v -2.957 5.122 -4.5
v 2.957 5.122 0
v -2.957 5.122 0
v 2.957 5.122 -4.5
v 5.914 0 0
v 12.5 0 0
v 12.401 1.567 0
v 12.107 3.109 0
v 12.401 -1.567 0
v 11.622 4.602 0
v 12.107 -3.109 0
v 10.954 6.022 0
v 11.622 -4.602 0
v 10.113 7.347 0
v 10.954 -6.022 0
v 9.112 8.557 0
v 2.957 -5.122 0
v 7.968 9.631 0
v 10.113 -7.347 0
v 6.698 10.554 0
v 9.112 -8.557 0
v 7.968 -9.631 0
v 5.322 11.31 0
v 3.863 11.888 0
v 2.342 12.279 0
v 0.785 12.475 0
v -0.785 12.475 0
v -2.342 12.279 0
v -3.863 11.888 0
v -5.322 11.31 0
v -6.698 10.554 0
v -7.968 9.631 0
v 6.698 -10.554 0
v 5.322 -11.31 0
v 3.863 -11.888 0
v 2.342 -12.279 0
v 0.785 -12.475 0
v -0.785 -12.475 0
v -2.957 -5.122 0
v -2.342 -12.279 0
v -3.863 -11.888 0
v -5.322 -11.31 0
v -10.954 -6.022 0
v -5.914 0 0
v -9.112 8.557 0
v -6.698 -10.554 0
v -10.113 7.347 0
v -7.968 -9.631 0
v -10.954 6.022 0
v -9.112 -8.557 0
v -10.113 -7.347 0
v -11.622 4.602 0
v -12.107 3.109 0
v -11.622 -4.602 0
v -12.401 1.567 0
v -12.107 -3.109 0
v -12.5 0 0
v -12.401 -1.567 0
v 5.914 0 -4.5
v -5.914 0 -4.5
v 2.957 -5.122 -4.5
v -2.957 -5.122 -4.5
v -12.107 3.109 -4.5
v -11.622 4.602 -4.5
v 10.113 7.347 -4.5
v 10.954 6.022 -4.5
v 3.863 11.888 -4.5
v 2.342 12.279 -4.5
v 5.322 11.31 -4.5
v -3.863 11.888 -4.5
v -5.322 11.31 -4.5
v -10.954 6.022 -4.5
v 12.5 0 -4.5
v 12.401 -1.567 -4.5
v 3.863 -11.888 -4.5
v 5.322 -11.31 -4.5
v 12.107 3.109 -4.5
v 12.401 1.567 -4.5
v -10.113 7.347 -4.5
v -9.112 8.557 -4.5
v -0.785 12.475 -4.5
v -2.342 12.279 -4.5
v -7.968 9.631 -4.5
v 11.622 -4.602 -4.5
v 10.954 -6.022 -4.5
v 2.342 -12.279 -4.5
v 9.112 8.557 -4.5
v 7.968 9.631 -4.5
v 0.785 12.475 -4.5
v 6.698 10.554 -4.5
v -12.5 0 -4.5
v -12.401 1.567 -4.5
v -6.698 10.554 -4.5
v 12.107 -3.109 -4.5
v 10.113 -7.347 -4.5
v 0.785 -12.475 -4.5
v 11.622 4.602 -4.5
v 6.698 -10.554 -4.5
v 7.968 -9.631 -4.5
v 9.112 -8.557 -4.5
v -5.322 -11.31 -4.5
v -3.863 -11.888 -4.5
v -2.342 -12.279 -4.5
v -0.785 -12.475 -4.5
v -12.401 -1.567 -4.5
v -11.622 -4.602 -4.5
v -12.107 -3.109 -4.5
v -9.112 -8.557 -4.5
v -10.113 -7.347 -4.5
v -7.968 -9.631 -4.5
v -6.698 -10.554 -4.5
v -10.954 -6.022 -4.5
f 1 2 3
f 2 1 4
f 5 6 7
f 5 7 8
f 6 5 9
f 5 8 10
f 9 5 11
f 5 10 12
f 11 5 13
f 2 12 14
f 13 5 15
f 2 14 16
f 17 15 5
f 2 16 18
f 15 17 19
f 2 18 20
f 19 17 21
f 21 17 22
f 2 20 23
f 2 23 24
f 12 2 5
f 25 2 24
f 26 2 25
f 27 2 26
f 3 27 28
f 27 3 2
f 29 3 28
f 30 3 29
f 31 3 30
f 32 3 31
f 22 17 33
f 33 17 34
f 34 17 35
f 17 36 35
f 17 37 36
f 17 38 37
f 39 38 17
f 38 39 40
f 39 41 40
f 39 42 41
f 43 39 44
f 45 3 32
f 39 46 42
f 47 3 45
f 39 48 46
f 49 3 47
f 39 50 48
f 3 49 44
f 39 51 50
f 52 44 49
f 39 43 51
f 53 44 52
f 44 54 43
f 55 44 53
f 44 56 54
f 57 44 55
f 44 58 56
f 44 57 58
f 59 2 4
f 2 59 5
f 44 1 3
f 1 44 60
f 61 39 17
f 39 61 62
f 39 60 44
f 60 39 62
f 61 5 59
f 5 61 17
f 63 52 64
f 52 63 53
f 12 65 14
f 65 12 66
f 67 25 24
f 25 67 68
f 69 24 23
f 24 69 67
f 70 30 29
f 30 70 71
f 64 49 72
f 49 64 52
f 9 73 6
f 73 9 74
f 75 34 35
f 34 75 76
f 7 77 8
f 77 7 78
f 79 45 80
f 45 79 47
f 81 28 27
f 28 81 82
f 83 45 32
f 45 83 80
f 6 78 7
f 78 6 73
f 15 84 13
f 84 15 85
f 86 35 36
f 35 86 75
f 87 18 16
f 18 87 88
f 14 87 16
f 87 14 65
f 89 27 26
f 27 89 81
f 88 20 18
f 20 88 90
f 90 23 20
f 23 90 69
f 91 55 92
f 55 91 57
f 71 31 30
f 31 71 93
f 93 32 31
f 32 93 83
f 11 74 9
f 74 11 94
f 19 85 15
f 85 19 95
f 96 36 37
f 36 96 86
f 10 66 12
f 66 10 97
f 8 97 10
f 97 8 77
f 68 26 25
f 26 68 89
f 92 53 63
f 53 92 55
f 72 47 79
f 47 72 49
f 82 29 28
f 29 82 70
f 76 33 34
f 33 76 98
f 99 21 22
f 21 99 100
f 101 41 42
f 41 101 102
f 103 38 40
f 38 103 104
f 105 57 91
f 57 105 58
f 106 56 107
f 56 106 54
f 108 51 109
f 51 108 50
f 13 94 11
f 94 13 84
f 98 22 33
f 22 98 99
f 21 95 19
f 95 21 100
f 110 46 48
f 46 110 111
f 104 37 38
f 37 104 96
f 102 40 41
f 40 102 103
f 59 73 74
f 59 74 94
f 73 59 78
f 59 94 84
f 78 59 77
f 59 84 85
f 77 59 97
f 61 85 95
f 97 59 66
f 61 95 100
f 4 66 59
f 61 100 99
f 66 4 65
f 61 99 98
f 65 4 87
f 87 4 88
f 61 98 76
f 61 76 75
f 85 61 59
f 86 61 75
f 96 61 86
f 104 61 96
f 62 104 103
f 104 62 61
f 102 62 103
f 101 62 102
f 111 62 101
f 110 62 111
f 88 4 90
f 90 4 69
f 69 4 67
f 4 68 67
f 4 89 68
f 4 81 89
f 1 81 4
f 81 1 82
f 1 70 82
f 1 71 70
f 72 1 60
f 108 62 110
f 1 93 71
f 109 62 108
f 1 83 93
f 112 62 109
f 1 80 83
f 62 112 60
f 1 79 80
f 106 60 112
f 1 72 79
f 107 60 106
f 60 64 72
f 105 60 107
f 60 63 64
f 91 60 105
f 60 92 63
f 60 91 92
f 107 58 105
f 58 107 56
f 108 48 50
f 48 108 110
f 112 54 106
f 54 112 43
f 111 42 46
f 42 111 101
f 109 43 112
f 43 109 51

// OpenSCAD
$fn = 50;

difference() {
	union() {
		translate(v = [0, 0, -4.5]) {
			cylinder(h = 4.5, r = 12.5);
		}
	}
	union() {
		translate(v = [0, 0, 0]) {
			rotate(a = [0, 0, 0]) {
				difference() {
					union() {
						translate(v = [0, 0, -5]) {
							linear_extrude(height = 5) {
								polygon(points = [[5.914249999999999, 0.0], [2.957125, 5.1218907443321156], [-2.9571249999999982, 5.1218907443321156], [-5.914249999999999, 7.242867331857232e-16], [-2.9571250000000022, -5.121890744332115], [2.9571249999999956, -5.121890744332118]]);
							}
						}
					}
					union();
				}
			}
		}
		#translate(v = [0, 0, -100.0]) {
			cylinder(h = 200, r = 3.25);
		}
	}
}
